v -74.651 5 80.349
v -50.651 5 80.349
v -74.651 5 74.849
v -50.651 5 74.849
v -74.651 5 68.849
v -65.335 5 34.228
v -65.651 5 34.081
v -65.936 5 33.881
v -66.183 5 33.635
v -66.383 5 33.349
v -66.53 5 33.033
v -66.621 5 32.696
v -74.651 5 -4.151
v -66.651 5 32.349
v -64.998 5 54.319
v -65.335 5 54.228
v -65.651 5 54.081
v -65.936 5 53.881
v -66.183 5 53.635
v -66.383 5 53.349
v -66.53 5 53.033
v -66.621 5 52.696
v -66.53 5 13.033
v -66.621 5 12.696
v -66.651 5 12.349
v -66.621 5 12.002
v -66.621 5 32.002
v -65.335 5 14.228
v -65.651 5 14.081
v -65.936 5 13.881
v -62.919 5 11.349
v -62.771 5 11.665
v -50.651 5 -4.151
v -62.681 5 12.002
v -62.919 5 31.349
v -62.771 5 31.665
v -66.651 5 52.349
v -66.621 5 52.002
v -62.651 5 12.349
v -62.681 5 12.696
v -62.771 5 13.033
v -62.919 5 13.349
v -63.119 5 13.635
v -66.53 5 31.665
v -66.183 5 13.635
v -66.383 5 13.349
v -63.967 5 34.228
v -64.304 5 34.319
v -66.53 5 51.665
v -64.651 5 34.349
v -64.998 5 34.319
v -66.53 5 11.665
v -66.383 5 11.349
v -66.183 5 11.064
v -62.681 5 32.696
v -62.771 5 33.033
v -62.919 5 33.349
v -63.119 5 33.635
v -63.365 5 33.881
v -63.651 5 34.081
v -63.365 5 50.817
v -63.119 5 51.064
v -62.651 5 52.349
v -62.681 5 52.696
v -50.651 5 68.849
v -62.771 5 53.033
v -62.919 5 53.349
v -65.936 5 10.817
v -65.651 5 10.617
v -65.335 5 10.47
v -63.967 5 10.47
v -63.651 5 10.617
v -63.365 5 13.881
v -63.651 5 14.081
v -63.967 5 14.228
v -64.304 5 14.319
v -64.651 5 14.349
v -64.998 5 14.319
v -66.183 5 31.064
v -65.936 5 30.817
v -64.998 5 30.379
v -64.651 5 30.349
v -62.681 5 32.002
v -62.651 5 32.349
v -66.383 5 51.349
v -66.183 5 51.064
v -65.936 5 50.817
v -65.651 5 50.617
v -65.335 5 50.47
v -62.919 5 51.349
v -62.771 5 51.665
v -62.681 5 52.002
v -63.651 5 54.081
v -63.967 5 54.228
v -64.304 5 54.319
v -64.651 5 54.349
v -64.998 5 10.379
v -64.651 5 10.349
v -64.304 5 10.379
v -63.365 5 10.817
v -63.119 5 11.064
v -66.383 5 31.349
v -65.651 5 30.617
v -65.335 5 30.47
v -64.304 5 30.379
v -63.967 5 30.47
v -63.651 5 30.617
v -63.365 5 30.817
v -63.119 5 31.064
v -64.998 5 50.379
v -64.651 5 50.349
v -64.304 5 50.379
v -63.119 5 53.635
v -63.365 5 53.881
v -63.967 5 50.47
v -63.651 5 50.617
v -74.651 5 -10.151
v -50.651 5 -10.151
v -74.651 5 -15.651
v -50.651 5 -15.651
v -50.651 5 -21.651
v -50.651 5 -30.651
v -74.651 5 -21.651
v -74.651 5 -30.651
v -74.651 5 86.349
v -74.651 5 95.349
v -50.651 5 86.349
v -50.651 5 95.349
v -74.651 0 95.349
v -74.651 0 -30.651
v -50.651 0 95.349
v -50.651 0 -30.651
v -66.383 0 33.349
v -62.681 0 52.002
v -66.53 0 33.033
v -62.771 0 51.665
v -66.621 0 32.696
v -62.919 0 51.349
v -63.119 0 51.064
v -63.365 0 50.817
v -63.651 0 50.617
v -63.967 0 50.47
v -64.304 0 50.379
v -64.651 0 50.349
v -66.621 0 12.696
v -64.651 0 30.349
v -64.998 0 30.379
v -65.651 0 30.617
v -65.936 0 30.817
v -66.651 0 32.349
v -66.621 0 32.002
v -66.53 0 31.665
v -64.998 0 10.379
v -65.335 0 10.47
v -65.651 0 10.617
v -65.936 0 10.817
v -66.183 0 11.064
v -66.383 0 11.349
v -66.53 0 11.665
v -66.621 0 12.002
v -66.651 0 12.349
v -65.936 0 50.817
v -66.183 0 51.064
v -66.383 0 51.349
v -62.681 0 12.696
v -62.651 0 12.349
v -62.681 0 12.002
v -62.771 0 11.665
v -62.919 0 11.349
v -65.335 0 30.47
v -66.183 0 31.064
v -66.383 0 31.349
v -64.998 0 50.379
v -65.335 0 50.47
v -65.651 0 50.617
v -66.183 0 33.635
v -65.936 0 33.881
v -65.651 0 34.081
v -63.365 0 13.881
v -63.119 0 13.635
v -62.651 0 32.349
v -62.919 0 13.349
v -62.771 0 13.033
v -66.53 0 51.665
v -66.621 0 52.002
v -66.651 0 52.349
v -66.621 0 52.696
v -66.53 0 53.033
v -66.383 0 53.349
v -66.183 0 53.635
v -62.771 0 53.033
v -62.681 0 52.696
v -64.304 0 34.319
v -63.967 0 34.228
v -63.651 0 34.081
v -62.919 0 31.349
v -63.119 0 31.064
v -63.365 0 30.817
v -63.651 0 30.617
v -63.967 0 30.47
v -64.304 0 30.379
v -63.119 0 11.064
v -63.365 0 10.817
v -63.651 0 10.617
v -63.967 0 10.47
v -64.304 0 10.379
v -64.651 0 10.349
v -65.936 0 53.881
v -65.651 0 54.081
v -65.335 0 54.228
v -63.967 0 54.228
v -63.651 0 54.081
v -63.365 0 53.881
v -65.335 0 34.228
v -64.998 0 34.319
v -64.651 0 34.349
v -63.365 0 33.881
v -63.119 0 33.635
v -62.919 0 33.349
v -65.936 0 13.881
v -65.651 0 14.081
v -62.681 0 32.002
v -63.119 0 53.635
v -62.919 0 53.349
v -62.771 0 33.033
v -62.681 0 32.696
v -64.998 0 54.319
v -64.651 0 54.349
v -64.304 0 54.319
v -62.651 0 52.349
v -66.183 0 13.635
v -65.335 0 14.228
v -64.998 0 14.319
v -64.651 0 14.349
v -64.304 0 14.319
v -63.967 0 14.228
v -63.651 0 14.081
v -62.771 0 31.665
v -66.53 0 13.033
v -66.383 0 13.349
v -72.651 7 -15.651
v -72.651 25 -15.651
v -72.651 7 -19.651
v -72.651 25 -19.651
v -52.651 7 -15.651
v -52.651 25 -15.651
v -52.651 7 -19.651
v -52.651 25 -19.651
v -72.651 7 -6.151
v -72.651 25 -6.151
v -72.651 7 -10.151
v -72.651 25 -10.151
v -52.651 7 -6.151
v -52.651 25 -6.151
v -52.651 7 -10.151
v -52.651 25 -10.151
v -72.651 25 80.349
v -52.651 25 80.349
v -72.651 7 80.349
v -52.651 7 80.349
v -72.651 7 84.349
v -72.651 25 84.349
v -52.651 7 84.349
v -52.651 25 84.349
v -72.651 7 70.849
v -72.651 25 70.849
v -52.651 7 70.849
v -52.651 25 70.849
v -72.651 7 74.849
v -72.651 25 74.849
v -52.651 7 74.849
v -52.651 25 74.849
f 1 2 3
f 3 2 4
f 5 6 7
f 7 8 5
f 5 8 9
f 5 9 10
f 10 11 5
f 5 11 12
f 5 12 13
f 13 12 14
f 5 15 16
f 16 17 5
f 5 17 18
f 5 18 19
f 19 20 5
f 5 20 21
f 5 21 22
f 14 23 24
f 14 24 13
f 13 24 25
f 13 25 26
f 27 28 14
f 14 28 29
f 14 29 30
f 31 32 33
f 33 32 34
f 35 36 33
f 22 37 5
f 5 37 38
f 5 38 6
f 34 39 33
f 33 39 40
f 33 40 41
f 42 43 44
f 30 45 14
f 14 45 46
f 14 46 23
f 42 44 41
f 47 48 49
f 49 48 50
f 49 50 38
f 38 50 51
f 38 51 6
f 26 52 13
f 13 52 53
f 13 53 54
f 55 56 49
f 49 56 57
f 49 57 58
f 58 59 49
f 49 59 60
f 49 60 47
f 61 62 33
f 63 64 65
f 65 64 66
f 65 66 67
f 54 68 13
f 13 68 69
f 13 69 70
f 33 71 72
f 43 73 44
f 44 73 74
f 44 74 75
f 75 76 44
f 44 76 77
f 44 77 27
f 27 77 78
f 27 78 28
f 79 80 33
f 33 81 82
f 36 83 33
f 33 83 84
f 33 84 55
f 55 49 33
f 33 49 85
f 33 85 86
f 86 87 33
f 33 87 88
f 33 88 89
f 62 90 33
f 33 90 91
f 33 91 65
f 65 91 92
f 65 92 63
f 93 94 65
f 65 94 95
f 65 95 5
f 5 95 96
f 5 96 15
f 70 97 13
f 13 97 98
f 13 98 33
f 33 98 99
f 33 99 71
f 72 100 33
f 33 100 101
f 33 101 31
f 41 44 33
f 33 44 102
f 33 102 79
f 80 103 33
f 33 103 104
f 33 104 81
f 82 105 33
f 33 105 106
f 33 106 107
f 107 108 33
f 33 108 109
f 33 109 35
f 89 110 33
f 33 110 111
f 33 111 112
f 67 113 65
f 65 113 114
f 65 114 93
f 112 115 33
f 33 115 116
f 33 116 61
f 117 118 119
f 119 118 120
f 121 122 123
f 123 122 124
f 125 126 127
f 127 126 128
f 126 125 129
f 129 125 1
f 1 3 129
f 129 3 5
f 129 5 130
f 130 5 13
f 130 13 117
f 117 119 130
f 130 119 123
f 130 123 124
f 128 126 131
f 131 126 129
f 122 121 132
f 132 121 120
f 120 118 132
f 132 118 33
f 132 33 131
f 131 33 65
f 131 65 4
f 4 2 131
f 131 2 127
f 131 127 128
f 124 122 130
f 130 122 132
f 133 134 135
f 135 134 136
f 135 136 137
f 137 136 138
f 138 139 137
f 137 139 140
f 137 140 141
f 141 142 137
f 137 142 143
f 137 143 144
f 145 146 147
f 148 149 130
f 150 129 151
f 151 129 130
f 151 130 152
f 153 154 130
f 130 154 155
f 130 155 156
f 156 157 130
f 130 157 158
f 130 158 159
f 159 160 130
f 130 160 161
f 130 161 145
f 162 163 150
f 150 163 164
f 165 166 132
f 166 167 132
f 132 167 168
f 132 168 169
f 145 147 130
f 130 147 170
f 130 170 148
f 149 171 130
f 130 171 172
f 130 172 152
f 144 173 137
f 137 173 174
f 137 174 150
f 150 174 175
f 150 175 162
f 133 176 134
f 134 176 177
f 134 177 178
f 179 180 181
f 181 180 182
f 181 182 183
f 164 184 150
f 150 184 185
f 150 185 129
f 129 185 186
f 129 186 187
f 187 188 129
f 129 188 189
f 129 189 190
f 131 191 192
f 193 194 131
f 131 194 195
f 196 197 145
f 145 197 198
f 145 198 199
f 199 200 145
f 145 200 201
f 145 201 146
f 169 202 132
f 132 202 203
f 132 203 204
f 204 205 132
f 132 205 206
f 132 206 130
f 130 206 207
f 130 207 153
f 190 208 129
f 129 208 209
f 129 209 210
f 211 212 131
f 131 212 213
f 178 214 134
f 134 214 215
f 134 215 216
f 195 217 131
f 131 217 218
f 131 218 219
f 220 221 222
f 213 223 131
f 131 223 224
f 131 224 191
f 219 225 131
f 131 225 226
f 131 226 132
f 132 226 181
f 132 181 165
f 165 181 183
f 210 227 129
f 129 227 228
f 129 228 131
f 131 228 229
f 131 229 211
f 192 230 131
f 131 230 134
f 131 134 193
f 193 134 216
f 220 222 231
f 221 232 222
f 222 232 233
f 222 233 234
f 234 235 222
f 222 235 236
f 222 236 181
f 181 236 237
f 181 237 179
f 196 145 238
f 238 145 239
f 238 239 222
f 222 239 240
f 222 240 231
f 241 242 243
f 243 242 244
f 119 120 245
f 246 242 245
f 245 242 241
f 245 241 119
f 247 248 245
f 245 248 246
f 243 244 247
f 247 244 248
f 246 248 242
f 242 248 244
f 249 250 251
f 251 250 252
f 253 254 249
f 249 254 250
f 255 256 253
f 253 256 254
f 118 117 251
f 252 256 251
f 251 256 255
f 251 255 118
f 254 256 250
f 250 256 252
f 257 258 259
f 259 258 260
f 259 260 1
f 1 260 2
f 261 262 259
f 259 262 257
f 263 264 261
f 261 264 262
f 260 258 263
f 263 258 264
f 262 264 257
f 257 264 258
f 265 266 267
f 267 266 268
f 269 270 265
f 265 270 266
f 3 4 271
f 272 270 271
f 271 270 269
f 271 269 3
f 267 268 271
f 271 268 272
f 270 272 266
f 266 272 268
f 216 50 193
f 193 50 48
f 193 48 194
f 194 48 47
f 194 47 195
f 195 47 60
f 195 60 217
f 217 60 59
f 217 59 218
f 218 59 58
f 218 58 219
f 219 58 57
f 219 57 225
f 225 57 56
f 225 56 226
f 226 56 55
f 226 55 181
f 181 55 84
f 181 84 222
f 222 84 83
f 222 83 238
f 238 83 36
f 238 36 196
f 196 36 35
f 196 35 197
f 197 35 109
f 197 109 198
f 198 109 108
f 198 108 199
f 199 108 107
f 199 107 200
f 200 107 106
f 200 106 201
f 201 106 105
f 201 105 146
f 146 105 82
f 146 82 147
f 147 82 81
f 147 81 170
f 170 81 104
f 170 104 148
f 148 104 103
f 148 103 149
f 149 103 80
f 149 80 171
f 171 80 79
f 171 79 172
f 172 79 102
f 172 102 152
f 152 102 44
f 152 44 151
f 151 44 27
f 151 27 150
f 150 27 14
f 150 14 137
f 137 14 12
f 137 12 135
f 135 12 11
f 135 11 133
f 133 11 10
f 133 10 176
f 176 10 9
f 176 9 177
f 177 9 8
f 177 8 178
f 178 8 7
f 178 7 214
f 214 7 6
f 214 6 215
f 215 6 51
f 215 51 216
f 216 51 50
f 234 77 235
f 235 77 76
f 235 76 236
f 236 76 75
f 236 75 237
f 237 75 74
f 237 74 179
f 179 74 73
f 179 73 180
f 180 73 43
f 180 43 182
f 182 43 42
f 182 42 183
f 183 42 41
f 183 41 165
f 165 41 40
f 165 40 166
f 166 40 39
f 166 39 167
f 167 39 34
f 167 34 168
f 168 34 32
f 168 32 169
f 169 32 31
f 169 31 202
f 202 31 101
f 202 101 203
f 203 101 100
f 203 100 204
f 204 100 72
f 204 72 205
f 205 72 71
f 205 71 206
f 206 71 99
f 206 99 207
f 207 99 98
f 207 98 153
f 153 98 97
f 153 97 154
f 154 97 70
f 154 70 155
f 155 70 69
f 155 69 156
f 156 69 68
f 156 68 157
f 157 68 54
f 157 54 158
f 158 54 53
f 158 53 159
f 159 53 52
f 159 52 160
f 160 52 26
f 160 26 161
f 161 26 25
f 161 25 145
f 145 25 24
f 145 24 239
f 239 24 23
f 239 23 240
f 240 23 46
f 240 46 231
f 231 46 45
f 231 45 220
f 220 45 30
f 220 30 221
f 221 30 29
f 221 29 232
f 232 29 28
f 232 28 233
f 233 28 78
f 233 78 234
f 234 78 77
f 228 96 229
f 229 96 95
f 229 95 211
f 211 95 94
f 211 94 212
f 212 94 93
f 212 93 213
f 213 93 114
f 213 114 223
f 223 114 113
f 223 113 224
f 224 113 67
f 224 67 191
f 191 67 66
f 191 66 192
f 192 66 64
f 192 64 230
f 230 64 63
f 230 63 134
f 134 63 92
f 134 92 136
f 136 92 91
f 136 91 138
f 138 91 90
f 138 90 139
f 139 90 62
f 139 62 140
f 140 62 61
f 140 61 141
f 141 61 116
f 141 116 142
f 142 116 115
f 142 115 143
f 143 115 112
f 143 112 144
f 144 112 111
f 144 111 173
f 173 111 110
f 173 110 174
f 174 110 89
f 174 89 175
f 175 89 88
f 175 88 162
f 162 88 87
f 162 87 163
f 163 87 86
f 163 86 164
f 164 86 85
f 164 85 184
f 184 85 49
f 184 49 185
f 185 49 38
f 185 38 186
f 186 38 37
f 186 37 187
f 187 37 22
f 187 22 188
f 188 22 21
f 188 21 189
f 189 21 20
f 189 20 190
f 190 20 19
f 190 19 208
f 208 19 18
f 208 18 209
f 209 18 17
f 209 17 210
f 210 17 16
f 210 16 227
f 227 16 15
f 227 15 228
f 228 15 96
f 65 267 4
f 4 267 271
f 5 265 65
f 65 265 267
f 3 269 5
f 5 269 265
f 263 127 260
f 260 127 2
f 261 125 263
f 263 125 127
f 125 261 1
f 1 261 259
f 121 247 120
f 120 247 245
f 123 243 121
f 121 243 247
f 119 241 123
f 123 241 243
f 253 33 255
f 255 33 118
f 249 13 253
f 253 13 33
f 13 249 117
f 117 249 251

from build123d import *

# Parameters (mm, degrees)
SKETCH1_W               = 24
SKETCH1_H               = 126
BOSS_EXTRUDE1_DEPTH     = 5
SKETCH2_W               = 20
SKETCH2_H               = 4
BOSS_EXTRUDE2_DEPTH     = 20
CUT_EXTRUDE1_DEPTH      = 123.736336331
CUT_EXTRUDE1_DEPTH_BACK = 123.736336331
SKETCH3_R               = 2
CHAMFER1_SIZE           = 2


with BuildPart() as part:
    # Sketch1 → Boss-Extrude1 (new body)
    with BuildSketch(Plane(origin=(0, 0, 0), x_dir=(1, 0, 0), z_dir=(0, 1, 0))):
        with Locations((-62.650887574, -32.349112426)):
            Rectangle(SKETCH1_W, SKETCH1_H)
    extrude(amount=BOSS_EXTRUDE1_DEPTH)

    # Sketch2 → Boss-Extrude2 (add)
    with BuildSketch(Plane(origin=(0, 5, 0), x_dir=(1, 0, 0), z_dir=(0, 1, 0))):
        with Locations((-62.650887574, 17.650887574)):
            Rectangle(SKETCH2_W, SKETCH2_H)
        with Locations((-62.650887574, 8.150887574)):
            Rectangle(SKETCH2_W, SKETCH2_H)
        with Locations((-62.650887574, -72.849112426)):
            Rectangle(SKETCH2_W, SKETCH2_H)
        with Locations((-62.650887574, -82.349112426)):
            Rectangle(SKETCH2_W, SKETCH2_H)
    extrude(amount=BOSS_EXTRUDE2_DEPTH)

    # Sketch3 → Cut-Extrude1 (cut, two sides: drawn at the far end of the back side and taken through both)
    with BuildSketch(Plane(origin=(0, 5, 0), x_dir=(1, 0, 0), z_dir=(0, 1, 0)).offset(-CUT_EXTRUDE1_DEPTH_BACK)):
        with Locations(Location((-64.650887574, -32.349112426, 0), (0, 0, 270))):
            Circle(SKETCH3_R)
        with Locations(Location((-64.650887574, -12.349112426, 0), (0, 0, 270))):
            Circle(SKETCH3_R)
        with Locations(Location((-64.650887574, -52.349112426, 0), (0, 0, 270))):
            Circle(SKETCH3_R)
    extrude(amount=CUT_EXTRUDE1_DEPTH + CUT_EXTRUDE1_DEPTH_BACK, mode=Mode.SUBTRACT)

    # Chamfer1
    chamfer1_edges = [part.edges().sort_by_distance(p)[0] for p in [
        (-72.650887574, 5, -17.650887574),
        (-52.650887574, 5, -17.650887574),
        (-62.650887574, 5, -19.650887574),
        (-72.650887574, 5, -8.150887574),
        (-62.650887574, 5, -6.150887574),
        (-52.650887574, 5, -8.150887574),
        (-72.650887574, 5, 82.349112426),
        (-62.650887574, 5, 84.349112426),
        (-52.650887574, 5, 82.349112426),
        (-62.650887574, 5, 70.849112426),
        (-72.650887574, 5, 72.849112426),
        (-52.650887574, 5, 72.849112426),
    ]]
    chamfer(chamfer1_edges, length=CHAMFER1_SIZE - 0.0001)  # a hair under: the kernel refuses the full size


solid = part.part
